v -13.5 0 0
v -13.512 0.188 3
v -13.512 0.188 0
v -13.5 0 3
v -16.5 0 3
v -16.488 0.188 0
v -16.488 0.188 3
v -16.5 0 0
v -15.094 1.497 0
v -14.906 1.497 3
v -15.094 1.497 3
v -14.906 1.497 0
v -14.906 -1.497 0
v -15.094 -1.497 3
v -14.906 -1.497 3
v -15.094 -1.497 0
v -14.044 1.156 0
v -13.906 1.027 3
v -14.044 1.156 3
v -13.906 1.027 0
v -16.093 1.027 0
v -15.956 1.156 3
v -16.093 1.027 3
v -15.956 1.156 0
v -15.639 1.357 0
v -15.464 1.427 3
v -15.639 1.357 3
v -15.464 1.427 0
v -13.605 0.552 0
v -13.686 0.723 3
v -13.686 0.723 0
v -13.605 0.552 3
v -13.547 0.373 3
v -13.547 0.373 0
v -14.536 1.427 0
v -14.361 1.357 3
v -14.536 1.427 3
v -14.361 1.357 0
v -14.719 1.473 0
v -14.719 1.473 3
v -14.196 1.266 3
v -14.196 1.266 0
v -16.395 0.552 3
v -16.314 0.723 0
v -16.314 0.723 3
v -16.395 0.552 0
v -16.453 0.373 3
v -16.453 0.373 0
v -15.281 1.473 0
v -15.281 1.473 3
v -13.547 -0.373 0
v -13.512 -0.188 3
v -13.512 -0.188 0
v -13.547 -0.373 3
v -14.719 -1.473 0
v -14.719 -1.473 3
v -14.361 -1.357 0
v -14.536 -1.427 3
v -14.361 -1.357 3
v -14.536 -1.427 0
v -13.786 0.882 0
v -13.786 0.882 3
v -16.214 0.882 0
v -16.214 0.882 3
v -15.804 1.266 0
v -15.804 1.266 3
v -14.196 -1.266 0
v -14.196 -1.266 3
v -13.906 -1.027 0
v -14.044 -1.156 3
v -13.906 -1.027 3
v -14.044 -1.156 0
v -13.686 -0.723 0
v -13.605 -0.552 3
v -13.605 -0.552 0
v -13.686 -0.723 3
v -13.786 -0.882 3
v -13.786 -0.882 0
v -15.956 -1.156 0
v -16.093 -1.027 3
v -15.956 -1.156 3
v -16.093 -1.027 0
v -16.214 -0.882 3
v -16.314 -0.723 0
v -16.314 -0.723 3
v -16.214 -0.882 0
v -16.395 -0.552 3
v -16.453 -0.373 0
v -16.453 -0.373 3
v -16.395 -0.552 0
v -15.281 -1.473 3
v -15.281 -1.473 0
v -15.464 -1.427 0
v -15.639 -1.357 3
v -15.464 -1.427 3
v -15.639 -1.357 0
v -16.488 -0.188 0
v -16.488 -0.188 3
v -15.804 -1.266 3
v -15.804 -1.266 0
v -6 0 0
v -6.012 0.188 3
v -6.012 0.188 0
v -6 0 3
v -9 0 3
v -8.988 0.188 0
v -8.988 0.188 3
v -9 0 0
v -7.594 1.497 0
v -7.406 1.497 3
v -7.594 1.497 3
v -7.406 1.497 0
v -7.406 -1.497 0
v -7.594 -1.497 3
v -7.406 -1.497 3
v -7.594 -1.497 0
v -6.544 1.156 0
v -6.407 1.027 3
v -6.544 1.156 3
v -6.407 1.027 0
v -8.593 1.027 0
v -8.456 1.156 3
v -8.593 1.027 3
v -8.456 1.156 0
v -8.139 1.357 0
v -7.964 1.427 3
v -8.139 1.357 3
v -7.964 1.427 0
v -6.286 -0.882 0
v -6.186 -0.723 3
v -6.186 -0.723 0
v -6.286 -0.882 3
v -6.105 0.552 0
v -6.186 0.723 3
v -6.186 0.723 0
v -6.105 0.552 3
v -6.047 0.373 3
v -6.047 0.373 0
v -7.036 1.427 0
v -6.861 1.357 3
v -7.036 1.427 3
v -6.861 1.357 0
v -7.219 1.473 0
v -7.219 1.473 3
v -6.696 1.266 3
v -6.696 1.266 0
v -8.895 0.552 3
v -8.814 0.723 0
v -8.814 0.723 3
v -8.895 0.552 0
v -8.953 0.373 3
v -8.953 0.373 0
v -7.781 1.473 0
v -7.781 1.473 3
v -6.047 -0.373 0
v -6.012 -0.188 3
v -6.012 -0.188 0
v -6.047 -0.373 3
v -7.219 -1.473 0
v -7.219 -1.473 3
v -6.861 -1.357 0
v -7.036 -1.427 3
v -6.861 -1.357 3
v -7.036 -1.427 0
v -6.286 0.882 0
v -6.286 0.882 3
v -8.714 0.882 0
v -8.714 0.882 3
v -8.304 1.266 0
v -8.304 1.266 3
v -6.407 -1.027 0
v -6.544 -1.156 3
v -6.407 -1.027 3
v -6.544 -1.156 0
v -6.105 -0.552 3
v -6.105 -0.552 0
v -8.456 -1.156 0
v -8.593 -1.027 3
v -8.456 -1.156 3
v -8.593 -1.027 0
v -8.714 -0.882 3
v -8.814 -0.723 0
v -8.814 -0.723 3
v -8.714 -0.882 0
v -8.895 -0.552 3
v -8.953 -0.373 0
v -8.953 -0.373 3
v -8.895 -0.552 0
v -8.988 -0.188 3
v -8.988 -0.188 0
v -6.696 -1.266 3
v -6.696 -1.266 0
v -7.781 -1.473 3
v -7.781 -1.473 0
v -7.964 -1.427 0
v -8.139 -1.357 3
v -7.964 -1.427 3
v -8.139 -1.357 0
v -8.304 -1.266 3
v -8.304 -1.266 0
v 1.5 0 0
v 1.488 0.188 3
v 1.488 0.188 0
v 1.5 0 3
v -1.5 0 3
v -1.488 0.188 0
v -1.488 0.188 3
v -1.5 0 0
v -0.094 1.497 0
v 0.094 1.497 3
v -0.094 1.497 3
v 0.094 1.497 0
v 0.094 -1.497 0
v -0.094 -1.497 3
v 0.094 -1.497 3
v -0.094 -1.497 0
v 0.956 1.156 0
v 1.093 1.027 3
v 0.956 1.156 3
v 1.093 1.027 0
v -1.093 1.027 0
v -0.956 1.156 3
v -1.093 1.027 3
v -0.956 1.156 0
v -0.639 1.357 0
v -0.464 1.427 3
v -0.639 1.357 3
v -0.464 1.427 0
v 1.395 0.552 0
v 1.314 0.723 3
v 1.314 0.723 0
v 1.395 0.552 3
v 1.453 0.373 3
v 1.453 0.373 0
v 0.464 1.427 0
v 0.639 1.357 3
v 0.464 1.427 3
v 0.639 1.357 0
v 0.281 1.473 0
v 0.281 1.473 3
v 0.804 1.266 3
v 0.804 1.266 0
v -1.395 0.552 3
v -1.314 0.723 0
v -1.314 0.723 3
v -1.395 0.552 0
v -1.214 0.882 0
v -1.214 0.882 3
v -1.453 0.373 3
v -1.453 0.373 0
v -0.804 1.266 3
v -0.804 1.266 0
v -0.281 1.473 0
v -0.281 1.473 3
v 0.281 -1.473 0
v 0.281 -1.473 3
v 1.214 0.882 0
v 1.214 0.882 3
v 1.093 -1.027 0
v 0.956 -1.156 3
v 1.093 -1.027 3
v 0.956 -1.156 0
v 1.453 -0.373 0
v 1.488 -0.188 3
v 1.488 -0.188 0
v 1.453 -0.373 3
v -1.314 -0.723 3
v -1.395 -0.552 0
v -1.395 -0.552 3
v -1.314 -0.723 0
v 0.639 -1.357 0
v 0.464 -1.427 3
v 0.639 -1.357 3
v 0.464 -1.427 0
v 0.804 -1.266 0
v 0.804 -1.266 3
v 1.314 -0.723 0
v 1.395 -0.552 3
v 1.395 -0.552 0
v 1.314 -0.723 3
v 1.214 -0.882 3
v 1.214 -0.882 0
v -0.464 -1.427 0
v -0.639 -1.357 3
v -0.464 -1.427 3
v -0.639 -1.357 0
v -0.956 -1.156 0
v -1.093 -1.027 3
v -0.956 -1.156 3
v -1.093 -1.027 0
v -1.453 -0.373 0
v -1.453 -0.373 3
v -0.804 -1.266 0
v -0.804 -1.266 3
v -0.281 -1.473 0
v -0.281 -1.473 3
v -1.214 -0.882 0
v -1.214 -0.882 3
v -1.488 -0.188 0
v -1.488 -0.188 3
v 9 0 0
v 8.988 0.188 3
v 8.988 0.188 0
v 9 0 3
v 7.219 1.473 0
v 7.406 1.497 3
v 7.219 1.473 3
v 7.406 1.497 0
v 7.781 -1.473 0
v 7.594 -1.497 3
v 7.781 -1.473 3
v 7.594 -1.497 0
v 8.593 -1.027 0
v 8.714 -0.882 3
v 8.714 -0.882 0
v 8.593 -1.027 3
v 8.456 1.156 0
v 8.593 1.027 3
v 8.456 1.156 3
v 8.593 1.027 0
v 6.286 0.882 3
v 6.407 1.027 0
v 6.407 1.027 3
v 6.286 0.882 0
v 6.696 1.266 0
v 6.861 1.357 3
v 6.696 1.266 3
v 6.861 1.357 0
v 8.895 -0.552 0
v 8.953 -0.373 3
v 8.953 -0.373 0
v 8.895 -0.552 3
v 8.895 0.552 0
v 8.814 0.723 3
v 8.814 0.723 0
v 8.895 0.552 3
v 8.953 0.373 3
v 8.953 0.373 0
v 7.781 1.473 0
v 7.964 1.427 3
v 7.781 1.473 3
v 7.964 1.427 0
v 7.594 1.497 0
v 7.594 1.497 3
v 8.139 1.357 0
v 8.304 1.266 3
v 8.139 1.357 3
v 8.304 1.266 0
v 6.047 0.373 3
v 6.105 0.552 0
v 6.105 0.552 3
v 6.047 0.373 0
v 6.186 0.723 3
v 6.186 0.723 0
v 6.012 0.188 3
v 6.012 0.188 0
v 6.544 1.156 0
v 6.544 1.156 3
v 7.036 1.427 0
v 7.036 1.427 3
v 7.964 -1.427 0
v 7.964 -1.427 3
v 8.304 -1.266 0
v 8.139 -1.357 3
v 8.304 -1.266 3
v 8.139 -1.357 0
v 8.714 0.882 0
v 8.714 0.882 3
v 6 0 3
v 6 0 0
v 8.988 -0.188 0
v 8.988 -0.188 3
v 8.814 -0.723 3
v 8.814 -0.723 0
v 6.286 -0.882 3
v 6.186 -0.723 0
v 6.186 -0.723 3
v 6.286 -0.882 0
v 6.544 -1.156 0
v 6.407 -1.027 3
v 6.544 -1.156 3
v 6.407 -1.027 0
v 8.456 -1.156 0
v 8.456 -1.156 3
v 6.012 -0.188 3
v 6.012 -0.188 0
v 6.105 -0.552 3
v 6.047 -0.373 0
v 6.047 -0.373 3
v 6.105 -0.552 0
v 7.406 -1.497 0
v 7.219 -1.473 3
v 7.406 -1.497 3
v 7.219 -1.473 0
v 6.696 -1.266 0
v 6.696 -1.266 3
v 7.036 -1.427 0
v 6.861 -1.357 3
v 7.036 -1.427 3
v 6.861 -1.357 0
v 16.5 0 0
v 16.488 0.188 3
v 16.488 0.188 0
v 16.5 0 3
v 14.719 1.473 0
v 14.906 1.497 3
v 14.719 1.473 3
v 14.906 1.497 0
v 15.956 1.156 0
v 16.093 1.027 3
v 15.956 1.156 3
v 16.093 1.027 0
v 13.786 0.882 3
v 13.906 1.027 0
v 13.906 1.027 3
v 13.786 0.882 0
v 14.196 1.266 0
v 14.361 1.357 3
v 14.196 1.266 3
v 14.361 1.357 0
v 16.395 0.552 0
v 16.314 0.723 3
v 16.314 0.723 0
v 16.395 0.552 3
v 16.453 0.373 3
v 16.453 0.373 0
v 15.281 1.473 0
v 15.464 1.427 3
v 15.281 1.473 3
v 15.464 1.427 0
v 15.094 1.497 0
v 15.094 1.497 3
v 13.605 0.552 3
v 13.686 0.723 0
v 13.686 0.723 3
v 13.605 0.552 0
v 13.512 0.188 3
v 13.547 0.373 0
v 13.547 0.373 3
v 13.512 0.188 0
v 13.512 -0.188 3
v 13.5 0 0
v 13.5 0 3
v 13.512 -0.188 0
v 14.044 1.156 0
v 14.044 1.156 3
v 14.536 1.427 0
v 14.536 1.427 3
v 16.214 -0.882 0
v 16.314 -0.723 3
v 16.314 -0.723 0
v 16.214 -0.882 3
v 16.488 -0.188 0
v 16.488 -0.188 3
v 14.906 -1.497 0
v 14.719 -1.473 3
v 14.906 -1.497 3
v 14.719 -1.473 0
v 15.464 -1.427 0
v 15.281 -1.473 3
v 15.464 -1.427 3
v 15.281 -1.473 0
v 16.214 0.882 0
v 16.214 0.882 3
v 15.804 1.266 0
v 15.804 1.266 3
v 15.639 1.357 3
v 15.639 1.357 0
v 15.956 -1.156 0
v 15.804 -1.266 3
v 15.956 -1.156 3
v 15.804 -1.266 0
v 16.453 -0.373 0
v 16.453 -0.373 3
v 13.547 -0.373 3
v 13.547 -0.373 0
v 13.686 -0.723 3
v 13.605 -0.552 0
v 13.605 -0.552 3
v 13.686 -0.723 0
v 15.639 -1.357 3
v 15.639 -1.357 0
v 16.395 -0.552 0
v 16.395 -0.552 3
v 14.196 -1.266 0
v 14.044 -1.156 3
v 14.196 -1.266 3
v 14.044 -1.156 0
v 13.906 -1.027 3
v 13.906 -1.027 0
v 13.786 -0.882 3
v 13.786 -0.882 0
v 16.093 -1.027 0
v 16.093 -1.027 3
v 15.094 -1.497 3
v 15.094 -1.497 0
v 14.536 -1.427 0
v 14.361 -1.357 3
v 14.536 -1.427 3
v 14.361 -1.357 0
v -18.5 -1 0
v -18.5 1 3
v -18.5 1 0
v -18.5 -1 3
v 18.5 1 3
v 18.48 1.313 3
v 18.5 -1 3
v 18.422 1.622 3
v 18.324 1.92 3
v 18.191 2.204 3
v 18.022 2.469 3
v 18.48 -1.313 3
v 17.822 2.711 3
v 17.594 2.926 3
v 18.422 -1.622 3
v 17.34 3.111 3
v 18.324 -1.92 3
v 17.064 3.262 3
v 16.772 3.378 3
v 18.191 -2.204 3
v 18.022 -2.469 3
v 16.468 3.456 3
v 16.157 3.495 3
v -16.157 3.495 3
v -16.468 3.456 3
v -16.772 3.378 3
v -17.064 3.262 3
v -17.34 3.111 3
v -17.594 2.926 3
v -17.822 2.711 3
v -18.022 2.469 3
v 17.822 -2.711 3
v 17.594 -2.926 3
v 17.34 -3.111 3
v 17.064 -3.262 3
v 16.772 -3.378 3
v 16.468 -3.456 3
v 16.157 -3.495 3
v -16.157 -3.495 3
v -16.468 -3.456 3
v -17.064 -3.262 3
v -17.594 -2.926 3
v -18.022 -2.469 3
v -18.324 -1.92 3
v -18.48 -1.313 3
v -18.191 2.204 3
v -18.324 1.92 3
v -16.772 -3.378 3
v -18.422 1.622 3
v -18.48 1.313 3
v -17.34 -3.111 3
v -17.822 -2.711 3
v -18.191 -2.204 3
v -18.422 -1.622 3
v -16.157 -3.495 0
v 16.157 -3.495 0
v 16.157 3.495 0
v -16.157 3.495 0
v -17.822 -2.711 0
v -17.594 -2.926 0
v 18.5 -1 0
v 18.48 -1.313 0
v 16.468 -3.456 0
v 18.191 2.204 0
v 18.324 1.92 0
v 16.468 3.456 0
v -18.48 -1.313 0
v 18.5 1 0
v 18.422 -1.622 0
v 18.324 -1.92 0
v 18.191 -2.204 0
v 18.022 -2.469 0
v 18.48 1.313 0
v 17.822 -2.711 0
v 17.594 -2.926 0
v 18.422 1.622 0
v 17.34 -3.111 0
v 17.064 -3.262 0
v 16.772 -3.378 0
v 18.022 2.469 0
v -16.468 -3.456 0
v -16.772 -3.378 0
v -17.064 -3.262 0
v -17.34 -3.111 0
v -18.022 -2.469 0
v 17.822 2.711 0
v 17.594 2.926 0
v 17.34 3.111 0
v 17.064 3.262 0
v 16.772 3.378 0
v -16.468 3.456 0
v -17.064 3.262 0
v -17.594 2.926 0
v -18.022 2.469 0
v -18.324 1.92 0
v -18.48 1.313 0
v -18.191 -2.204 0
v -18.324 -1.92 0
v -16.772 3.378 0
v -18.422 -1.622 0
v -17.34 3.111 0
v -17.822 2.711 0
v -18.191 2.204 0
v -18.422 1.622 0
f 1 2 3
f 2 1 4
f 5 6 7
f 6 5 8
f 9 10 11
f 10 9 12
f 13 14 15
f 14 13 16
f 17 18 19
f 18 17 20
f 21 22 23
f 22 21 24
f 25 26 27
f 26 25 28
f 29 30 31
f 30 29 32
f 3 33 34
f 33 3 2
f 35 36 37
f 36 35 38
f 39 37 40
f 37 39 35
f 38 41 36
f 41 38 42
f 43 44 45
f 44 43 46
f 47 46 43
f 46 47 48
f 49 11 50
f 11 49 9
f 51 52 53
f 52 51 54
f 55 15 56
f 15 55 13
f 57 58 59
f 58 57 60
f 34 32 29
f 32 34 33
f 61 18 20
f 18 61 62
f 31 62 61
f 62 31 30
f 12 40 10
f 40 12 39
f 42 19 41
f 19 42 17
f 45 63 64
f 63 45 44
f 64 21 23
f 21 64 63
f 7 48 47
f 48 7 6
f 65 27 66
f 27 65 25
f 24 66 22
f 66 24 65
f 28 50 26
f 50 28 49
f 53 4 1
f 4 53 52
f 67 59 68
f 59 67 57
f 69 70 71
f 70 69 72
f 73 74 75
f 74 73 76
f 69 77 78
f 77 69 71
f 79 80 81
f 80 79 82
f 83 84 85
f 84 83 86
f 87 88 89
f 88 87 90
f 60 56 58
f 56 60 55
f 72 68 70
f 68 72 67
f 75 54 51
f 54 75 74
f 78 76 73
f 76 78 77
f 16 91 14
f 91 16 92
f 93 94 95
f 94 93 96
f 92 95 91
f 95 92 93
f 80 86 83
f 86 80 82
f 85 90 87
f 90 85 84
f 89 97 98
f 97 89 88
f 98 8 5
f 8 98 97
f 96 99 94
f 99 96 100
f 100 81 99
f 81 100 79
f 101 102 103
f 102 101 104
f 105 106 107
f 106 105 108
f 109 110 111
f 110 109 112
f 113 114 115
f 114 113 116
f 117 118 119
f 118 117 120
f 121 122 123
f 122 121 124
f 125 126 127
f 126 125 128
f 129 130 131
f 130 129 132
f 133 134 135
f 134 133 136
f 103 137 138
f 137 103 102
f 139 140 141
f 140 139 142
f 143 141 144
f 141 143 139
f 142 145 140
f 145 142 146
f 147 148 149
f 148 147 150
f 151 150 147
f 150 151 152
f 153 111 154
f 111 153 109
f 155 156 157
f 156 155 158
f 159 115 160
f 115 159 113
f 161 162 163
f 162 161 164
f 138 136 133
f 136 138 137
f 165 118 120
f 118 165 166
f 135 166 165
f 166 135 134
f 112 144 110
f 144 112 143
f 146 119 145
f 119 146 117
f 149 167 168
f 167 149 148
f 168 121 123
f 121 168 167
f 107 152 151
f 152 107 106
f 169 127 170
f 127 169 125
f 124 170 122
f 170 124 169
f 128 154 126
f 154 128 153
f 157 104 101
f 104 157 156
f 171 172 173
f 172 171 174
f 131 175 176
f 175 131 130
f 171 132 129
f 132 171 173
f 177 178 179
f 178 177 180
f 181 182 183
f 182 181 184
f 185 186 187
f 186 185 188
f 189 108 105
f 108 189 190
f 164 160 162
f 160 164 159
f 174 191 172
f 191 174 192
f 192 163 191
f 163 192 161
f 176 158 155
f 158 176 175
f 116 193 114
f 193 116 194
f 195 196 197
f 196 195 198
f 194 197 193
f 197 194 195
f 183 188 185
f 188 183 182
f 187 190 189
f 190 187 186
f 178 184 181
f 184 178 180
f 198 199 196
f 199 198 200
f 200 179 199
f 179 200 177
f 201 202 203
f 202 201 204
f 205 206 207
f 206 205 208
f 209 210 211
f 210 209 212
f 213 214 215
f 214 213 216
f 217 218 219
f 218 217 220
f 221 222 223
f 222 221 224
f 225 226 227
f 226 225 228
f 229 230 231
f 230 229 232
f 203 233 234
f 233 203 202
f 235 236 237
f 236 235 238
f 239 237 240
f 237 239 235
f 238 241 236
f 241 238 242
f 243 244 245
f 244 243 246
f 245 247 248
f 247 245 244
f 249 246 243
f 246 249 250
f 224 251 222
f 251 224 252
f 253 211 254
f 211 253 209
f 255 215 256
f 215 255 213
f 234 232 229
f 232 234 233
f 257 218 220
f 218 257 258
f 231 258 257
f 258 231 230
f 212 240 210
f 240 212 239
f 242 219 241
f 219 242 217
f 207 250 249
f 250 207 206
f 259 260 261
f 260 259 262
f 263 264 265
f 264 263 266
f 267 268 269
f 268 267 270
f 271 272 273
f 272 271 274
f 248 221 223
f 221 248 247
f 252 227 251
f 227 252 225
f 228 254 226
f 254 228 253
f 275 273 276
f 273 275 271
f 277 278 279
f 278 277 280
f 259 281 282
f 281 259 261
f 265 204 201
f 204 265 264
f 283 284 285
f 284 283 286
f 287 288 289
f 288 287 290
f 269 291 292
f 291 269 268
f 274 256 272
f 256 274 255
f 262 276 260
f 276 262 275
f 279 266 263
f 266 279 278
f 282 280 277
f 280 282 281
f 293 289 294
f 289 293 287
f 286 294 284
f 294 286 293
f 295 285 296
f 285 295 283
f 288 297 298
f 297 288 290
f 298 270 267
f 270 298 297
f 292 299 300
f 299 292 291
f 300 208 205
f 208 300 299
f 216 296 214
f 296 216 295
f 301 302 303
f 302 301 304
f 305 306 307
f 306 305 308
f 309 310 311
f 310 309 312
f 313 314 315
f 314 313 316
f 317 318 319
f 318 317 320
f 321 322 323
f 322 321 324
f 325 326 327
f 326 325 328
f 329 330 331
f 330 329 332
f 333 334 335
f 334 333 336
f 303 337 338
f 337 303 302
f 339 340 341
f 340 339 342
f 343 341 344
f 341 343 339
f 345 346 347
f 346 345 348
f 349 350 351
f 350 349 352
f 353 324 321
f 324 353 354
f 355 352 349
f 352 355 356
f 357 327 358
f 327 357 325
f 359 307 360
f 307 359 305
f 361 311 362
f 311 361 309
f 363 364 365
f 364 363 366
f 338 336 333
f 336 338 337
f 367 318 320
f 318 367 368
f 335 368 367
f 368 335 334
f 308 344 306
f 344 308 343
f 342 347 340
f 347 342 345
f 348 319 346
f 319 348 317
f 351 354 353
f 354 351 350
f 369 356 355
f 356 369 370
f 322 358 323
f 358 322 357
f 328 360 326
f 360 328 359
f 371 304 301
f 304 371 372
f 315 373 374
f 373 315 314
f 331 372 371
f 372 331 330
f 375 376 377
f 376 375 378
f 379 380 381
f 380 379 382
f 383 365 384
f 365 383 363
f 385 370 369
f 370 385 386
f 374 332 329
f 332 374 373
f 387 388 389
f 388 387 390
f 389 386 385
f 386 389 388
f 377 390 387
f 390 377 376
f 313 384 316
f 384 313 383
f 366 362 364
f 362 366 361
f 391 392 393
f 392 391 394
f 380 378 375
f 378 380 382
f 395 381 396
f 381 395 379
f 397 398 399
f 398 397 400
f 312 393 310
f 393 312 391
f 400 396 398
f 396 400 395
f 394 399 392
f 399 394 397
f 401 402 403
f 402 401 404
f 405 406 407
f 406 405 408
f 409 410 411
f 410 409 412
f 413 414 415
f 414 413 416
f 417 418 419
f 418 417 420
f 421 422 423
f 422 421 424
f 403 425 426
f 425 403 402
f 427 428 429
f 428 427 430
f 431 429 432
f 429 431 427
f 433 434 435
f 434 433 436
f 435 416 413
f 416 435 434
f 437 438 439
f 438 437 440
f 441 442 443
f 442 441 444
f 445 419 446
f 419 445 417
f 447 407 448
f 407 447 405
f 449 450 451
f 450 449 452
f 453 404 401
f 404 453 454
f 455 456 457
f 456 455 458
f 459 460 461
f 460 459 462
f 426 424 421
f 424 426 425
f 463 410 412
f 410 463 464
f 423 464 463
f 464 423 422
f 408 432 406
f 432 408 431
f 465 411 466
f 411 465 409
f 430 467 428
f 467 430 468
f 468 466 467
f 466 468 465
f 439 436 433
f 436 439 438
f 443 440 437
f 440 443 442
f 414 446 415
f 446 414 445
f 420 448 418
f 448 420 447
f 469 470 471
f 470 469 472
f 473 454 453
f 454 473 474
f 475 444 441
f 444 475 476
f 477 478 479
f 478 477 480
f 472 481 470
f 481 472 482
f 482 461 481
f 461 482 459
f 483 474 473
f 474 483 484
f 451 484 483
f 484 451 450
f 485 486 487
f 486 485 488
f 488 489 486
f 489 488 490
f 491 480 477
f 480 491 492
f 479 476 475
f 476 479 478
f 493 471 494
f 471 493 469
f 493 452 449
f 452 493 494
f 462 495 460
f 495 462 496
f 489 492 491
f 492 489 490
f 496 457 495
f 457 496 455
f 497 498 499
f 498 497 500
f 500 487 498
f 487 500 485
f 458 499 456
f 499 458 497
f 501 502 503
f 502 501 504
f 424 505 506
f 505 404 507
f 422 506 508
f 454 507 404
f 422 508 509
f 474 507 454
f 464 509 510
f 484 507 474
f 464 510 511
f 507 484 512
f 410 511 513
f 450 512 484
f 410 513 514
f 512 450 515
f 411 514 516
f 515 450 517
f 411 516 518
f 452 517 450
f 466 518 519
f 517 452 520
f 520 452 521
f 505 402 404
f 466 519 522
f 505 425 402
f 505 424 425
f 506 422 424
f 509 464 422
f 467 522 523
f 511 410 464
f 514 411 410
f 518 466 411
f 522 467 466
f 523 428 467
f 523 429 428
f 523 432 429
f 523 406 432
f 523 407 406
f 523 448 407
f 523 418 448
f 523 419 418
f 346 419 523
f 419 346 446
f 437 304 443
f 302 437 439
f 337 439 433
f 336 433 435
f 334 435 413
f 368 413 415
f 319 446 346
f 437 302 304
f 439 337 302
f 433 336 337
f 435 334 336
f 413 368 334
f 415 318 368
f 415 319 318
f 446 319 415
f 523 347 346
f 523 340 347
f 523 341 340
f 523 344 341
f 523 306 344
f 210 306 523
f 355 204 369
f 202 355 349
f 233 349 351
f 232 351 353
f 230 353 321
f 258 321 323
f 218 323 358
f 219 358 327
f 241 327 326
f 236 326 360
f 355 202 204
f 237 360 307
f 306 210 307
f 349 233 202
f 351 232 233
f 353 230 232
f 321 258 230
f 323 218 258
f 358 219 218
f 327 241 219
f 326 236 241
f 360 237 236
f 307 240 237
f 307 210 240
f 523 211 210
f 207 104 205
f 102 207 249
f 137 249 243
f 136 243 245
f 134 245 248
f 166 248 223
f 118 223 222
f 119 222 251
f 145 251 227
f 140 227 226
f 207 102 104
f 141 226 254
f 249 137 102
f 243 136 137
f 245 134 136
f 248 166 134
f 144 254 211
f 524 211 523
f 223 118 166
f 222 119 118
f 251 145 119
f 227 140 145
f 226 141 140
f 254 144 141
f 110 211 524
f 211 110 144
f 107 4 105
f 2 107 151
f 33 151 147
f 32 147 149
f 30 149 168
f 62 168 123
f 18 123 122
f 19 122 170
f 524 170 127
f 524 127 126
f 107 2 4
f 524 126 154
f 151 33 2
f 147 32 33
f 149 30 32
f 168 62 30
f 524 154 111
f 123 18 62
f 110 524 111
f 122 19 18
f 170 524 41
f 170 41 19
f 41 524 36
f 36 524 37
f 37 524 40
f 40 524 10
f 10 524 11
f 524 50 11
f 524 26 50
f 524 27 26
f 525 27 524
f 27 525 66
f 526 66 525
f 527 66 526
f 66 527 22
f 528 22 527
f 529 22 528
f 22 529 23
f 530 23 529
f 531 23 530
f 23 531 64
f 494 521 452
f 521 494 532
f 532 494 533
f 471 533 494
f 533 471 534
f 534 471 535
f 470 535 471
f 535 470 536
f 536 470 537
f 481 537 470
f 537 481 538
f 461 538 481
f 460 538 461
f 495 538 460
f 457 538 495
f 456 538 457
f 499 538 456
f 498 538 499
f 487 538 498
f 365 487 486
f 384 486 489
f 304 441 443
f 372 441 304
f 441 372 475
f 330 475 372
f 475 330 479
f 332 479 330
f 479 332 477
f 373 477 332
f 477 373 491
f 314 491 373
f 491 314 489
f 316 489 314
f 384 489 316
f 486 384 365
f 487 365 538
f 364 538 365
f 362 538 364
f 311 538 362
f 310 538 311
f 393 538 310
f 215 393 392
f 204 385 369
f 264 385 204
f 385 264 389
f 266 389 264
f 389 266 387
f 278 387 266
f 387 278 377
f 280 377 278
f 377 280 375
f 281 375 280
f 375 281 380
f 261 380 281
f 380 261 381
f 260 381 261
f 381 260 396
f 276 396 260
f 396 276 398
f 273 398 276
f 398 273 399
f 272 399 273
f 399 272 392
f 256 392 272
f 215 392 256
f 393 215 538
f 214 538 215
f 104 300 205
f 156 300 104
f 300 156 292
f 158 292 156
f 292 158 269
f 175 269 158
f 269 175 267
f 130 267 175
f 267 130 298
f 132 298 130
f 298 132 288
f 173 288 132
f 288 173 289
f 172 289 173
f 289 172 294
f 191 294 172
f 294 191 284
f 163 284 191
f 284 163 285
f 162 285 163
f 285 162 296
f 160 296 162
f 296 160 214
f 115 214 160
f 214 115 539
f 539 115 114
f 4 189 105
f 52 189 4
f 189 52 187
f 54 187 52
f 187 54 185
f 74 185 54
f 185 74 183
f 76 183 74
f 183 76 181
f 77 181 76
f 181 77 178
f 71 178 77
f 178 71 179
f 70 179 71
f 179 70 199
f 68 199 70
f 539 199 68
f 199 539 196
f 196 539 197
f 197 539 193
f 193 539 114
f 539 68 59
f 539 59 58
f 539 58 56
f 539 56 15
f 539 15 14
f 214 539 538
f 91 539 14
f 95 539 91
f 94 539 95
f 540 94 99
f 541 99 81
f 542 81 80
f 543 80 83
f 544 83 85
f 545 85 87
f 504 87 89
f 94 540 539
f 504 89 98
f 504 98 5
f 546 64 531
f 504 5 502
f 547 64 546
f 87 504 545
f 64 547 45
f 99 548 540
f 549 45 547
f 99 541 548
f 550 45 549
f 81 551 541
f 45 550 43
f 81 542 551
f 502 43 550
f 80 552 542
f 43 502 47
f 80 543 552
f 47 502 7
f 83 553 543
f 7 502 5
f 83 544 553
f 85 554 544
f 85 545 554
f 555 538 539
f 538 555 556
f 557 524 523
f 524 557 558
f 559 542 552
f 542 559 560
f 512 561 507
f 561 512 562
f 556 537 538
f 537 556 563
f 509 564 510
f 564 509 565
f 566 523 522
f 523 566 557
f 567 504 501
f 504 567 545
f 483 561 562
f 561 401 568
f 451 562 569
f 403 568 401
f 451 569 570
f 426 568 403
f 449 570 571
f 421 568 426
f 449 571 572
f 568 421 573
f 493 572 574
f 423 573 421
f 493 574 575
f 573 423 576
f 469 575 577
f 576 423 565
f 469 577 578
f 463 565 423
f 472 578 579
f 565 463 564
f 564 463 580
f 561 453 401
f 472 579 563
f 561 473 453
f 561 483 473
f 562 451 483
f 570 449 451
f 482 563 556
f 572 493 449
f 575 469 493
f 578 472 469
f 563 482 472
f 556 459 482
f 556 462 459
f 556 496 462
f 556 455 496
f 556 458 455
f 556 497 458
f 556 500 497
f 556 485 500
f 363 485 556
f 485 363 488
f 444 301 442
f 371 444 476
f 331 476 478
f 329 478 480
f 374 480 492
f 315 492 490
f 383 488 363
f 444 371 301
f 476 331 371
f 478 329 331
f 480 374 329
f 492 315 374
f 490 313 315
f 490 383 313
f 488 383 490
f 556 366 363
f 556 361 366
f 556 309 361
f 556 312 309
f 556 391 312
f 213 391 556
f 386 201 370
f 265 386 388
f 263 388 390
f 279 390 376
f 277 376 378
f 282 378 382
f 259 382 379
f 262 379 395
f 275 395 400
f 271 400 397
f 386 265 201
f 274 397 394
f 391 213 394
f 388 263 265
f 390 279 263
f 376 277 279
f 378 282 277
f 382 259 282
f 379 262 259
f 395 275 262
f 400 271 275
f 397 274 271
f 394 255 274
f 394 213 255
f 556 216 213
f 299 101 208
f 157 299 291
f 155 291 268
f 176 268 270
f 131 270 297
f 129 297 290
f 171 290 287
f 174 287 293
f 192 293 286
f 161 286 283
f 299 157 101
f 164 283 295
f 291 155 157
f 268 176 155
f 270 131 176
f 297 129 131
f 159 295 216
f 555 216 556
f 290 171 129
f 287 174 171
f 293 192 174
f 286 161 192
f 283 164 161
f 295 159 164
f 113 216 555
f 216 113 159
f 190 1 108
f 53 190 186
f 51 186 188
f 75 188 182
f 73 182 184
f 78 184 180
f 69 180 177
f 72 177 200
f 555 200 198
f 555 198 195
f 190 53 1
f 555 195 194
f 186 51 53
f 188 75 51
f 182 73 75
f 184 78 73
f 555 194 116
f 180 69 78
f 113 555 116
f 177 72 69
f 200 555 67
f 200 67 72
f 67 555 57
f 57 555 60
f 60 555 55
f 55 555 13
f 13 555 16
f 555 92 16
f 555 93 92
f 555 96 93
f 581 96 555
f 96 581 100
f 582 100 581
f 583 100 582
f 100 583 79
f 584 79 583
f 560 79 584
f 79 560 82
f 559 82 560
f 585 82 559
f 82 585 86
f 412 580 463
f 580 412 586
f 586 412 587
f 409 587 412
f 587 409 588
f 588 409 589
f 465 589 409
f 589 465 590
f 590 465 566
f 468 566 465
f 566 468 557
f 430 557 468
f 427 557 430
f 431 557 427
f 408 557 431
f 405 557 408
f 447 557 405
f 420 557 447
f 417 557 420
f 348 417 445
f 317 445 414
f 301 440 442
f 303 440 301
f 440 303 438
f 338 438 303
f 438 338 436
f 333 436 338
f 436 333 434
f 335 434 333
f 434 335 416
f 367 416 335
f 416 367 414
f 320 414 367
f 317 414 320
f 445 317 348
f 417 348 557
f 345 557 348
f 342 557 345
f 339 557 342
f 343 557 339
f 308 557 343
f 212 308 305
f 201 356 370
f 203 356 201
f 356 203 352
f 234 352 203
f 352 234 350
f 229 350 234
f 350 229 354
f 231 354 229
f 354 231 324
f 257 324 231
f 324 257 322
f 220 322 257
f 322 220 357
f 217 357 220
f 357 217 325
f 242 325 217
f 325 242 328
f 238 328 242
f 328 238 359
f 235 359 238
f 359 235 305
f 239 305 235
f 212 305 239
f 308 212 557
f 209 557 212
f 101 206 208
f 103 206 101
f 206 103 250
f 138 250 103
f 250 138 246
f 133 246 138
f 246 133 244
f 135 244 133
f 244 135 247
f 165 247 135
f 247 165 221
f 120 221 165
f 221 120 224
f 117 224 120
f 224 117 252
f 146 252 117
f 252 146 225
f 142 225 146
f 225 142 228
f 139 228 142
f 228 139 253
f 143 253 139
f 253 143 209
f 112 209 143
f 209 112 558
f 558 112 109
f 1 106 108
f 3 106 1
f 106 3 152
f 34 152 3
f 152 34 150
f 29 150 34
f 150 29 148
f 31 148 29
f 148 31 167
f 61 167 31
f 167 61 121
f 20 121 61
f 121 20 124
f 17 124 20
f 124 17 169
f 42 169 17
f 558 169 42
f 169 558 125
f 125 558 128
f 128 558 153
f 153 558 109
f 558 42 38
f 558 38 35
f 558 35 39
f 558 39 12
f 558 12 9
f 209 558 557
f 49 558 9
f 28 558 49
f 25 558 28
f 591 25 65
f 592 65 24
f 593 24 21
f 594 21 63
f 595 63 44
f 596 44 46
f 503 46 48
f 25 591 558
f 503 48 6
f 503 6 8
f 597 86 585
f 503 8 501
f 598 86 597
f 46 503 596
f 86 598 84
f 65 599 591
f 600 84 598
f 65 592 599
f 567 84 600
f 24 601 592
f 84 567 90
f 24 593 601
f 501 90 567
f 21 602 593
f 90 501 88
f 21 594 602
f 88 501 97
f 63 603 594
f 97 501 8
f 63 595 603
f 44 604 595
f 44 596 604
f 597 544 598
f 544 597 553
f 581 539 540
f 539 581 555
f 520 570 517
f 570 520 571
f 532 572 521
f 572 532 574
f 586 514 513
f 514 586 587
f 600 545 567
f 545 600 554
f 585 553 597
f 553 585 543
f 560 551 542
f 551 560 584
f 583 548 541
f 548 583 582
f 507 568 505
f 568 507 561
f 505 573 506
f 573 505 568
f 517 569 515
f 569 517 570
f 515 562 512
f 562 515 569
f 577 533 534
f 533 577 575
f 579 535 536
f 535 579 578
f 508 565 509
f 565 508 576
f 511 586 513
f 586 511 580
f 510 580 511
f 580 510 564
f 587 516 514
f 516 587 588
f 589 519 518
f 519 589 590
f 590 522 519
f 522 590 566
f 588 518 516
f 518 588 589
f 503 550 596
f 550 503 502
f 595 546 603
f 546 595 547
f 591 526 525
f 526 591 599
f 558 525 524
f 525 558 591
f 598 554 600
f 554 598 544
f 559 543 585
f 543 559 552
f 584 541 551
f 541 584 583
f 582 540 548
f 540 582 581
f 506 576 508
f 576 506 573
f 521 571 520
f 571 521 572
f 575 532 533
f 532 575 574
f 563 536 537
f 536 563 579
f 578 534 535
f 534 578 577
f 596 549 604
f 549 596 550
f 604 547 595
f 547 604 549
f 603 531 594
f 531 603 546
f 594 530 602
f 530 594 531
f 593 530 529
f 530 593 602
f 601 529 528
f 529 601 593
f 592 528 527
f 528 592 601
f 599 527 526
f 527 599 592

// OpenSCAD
$fn = 50;


difference() {
	union() {
		translate(v = [0, 0, 0]) {
			rotate(a = [0, 0, 0]) {
				hull() {
					translate(v = [-16.0000000000, 1.0000000000, 0]) {
						rotate(a = [0, 0, 0]) {
							translate(v = [0, 0, 0]) {
								rotate(a = [0, 0, 0]) {
									cylinder(h = 3, r = 2.5000000000);
								}
							}
						}
					}
					translate(v = [16.0000000000, 1.0000000000, 0]) {
						rotate(a = [0, 0, 0]) {
							translate(v = [0, 0, 0]) {
								rotate(a = [0, 0, 0]) {
									cylinder(h = 3, r = 2.5000000000);
								}
							}
						}
					}
					translate(v = [-16.0000000000, -1.0000000000, 0]) {
						rotate(a = [0, 0, 0]) {
							translate(v = [0, 0, 0]) {
								rotate(a = [0, 0, 0]) {
									cylinder(h = 3, r = 2.5000000000);
								}
							}
						}
					}
					translate(v = [16.0000000000, -1.0000000000, 0]) {
						rotate(a = [0, 0, 0]) {
							translate(v = [0, 0, 0]) {
								rotate(a = [0, 0, 0]) {
									cylinder(h = 3, r = 2.5000000000);
								}
							}
						}
					}
				}
			}
		}
	}
	union() {
		translate(v = [-15.0000000000, 0.0000000000, 0]) {
			rotate(a = [0, 0, 0]) {
				translate(v = [0, 0, -50]) {
					rotate(a = [0, 0, 0]) {
						cylinder(h = 100, r = 1.5000000000);
					}
				}
			}
		}
		translate(v = [-7.5000000000, 0.0000000000, 0]) {
			rotate(a = [0, 0, 0]) {
				translate(v = [0, 0, -50]) {
					rotate(a = [0, 0, 0]) {
						cylinder(h = 100, r = 1.5000000000);
					}
				}
			}
		}
		translate(v = [0.0000000000, 0.0000000000, 0]) {
			rotate(a = [0, 0, 0]) {
				translate(v = [0, 0, -50]) {
					rotate(a = [0, 0, 0]) {
						cylinder(h = 100, r = 1.5000000000);
					}
				}
			}
		}
		translate(v = [7.5000000000, 0.0000000000, 0]) {
			rotate(a = [0, 0, 0]) {
				translate(v = [0, 0, -50]) {
					rotate(a = [0, 0, 0]) {
						cylinder(h = 100, r = 1.5000000000);
					}
				}
			}
		}
		translate(v = [15.0000000000, 0.0000000000, 0]) {
			rotate(a = [0, 0, 0]) {
				translate(v = [0, 0, -50]) {
					rotate(a = [0, 0, 0]) {
						cylinder(h = 100, r = 1.5000000000);
					}
				}
			}
		}
	}
}
